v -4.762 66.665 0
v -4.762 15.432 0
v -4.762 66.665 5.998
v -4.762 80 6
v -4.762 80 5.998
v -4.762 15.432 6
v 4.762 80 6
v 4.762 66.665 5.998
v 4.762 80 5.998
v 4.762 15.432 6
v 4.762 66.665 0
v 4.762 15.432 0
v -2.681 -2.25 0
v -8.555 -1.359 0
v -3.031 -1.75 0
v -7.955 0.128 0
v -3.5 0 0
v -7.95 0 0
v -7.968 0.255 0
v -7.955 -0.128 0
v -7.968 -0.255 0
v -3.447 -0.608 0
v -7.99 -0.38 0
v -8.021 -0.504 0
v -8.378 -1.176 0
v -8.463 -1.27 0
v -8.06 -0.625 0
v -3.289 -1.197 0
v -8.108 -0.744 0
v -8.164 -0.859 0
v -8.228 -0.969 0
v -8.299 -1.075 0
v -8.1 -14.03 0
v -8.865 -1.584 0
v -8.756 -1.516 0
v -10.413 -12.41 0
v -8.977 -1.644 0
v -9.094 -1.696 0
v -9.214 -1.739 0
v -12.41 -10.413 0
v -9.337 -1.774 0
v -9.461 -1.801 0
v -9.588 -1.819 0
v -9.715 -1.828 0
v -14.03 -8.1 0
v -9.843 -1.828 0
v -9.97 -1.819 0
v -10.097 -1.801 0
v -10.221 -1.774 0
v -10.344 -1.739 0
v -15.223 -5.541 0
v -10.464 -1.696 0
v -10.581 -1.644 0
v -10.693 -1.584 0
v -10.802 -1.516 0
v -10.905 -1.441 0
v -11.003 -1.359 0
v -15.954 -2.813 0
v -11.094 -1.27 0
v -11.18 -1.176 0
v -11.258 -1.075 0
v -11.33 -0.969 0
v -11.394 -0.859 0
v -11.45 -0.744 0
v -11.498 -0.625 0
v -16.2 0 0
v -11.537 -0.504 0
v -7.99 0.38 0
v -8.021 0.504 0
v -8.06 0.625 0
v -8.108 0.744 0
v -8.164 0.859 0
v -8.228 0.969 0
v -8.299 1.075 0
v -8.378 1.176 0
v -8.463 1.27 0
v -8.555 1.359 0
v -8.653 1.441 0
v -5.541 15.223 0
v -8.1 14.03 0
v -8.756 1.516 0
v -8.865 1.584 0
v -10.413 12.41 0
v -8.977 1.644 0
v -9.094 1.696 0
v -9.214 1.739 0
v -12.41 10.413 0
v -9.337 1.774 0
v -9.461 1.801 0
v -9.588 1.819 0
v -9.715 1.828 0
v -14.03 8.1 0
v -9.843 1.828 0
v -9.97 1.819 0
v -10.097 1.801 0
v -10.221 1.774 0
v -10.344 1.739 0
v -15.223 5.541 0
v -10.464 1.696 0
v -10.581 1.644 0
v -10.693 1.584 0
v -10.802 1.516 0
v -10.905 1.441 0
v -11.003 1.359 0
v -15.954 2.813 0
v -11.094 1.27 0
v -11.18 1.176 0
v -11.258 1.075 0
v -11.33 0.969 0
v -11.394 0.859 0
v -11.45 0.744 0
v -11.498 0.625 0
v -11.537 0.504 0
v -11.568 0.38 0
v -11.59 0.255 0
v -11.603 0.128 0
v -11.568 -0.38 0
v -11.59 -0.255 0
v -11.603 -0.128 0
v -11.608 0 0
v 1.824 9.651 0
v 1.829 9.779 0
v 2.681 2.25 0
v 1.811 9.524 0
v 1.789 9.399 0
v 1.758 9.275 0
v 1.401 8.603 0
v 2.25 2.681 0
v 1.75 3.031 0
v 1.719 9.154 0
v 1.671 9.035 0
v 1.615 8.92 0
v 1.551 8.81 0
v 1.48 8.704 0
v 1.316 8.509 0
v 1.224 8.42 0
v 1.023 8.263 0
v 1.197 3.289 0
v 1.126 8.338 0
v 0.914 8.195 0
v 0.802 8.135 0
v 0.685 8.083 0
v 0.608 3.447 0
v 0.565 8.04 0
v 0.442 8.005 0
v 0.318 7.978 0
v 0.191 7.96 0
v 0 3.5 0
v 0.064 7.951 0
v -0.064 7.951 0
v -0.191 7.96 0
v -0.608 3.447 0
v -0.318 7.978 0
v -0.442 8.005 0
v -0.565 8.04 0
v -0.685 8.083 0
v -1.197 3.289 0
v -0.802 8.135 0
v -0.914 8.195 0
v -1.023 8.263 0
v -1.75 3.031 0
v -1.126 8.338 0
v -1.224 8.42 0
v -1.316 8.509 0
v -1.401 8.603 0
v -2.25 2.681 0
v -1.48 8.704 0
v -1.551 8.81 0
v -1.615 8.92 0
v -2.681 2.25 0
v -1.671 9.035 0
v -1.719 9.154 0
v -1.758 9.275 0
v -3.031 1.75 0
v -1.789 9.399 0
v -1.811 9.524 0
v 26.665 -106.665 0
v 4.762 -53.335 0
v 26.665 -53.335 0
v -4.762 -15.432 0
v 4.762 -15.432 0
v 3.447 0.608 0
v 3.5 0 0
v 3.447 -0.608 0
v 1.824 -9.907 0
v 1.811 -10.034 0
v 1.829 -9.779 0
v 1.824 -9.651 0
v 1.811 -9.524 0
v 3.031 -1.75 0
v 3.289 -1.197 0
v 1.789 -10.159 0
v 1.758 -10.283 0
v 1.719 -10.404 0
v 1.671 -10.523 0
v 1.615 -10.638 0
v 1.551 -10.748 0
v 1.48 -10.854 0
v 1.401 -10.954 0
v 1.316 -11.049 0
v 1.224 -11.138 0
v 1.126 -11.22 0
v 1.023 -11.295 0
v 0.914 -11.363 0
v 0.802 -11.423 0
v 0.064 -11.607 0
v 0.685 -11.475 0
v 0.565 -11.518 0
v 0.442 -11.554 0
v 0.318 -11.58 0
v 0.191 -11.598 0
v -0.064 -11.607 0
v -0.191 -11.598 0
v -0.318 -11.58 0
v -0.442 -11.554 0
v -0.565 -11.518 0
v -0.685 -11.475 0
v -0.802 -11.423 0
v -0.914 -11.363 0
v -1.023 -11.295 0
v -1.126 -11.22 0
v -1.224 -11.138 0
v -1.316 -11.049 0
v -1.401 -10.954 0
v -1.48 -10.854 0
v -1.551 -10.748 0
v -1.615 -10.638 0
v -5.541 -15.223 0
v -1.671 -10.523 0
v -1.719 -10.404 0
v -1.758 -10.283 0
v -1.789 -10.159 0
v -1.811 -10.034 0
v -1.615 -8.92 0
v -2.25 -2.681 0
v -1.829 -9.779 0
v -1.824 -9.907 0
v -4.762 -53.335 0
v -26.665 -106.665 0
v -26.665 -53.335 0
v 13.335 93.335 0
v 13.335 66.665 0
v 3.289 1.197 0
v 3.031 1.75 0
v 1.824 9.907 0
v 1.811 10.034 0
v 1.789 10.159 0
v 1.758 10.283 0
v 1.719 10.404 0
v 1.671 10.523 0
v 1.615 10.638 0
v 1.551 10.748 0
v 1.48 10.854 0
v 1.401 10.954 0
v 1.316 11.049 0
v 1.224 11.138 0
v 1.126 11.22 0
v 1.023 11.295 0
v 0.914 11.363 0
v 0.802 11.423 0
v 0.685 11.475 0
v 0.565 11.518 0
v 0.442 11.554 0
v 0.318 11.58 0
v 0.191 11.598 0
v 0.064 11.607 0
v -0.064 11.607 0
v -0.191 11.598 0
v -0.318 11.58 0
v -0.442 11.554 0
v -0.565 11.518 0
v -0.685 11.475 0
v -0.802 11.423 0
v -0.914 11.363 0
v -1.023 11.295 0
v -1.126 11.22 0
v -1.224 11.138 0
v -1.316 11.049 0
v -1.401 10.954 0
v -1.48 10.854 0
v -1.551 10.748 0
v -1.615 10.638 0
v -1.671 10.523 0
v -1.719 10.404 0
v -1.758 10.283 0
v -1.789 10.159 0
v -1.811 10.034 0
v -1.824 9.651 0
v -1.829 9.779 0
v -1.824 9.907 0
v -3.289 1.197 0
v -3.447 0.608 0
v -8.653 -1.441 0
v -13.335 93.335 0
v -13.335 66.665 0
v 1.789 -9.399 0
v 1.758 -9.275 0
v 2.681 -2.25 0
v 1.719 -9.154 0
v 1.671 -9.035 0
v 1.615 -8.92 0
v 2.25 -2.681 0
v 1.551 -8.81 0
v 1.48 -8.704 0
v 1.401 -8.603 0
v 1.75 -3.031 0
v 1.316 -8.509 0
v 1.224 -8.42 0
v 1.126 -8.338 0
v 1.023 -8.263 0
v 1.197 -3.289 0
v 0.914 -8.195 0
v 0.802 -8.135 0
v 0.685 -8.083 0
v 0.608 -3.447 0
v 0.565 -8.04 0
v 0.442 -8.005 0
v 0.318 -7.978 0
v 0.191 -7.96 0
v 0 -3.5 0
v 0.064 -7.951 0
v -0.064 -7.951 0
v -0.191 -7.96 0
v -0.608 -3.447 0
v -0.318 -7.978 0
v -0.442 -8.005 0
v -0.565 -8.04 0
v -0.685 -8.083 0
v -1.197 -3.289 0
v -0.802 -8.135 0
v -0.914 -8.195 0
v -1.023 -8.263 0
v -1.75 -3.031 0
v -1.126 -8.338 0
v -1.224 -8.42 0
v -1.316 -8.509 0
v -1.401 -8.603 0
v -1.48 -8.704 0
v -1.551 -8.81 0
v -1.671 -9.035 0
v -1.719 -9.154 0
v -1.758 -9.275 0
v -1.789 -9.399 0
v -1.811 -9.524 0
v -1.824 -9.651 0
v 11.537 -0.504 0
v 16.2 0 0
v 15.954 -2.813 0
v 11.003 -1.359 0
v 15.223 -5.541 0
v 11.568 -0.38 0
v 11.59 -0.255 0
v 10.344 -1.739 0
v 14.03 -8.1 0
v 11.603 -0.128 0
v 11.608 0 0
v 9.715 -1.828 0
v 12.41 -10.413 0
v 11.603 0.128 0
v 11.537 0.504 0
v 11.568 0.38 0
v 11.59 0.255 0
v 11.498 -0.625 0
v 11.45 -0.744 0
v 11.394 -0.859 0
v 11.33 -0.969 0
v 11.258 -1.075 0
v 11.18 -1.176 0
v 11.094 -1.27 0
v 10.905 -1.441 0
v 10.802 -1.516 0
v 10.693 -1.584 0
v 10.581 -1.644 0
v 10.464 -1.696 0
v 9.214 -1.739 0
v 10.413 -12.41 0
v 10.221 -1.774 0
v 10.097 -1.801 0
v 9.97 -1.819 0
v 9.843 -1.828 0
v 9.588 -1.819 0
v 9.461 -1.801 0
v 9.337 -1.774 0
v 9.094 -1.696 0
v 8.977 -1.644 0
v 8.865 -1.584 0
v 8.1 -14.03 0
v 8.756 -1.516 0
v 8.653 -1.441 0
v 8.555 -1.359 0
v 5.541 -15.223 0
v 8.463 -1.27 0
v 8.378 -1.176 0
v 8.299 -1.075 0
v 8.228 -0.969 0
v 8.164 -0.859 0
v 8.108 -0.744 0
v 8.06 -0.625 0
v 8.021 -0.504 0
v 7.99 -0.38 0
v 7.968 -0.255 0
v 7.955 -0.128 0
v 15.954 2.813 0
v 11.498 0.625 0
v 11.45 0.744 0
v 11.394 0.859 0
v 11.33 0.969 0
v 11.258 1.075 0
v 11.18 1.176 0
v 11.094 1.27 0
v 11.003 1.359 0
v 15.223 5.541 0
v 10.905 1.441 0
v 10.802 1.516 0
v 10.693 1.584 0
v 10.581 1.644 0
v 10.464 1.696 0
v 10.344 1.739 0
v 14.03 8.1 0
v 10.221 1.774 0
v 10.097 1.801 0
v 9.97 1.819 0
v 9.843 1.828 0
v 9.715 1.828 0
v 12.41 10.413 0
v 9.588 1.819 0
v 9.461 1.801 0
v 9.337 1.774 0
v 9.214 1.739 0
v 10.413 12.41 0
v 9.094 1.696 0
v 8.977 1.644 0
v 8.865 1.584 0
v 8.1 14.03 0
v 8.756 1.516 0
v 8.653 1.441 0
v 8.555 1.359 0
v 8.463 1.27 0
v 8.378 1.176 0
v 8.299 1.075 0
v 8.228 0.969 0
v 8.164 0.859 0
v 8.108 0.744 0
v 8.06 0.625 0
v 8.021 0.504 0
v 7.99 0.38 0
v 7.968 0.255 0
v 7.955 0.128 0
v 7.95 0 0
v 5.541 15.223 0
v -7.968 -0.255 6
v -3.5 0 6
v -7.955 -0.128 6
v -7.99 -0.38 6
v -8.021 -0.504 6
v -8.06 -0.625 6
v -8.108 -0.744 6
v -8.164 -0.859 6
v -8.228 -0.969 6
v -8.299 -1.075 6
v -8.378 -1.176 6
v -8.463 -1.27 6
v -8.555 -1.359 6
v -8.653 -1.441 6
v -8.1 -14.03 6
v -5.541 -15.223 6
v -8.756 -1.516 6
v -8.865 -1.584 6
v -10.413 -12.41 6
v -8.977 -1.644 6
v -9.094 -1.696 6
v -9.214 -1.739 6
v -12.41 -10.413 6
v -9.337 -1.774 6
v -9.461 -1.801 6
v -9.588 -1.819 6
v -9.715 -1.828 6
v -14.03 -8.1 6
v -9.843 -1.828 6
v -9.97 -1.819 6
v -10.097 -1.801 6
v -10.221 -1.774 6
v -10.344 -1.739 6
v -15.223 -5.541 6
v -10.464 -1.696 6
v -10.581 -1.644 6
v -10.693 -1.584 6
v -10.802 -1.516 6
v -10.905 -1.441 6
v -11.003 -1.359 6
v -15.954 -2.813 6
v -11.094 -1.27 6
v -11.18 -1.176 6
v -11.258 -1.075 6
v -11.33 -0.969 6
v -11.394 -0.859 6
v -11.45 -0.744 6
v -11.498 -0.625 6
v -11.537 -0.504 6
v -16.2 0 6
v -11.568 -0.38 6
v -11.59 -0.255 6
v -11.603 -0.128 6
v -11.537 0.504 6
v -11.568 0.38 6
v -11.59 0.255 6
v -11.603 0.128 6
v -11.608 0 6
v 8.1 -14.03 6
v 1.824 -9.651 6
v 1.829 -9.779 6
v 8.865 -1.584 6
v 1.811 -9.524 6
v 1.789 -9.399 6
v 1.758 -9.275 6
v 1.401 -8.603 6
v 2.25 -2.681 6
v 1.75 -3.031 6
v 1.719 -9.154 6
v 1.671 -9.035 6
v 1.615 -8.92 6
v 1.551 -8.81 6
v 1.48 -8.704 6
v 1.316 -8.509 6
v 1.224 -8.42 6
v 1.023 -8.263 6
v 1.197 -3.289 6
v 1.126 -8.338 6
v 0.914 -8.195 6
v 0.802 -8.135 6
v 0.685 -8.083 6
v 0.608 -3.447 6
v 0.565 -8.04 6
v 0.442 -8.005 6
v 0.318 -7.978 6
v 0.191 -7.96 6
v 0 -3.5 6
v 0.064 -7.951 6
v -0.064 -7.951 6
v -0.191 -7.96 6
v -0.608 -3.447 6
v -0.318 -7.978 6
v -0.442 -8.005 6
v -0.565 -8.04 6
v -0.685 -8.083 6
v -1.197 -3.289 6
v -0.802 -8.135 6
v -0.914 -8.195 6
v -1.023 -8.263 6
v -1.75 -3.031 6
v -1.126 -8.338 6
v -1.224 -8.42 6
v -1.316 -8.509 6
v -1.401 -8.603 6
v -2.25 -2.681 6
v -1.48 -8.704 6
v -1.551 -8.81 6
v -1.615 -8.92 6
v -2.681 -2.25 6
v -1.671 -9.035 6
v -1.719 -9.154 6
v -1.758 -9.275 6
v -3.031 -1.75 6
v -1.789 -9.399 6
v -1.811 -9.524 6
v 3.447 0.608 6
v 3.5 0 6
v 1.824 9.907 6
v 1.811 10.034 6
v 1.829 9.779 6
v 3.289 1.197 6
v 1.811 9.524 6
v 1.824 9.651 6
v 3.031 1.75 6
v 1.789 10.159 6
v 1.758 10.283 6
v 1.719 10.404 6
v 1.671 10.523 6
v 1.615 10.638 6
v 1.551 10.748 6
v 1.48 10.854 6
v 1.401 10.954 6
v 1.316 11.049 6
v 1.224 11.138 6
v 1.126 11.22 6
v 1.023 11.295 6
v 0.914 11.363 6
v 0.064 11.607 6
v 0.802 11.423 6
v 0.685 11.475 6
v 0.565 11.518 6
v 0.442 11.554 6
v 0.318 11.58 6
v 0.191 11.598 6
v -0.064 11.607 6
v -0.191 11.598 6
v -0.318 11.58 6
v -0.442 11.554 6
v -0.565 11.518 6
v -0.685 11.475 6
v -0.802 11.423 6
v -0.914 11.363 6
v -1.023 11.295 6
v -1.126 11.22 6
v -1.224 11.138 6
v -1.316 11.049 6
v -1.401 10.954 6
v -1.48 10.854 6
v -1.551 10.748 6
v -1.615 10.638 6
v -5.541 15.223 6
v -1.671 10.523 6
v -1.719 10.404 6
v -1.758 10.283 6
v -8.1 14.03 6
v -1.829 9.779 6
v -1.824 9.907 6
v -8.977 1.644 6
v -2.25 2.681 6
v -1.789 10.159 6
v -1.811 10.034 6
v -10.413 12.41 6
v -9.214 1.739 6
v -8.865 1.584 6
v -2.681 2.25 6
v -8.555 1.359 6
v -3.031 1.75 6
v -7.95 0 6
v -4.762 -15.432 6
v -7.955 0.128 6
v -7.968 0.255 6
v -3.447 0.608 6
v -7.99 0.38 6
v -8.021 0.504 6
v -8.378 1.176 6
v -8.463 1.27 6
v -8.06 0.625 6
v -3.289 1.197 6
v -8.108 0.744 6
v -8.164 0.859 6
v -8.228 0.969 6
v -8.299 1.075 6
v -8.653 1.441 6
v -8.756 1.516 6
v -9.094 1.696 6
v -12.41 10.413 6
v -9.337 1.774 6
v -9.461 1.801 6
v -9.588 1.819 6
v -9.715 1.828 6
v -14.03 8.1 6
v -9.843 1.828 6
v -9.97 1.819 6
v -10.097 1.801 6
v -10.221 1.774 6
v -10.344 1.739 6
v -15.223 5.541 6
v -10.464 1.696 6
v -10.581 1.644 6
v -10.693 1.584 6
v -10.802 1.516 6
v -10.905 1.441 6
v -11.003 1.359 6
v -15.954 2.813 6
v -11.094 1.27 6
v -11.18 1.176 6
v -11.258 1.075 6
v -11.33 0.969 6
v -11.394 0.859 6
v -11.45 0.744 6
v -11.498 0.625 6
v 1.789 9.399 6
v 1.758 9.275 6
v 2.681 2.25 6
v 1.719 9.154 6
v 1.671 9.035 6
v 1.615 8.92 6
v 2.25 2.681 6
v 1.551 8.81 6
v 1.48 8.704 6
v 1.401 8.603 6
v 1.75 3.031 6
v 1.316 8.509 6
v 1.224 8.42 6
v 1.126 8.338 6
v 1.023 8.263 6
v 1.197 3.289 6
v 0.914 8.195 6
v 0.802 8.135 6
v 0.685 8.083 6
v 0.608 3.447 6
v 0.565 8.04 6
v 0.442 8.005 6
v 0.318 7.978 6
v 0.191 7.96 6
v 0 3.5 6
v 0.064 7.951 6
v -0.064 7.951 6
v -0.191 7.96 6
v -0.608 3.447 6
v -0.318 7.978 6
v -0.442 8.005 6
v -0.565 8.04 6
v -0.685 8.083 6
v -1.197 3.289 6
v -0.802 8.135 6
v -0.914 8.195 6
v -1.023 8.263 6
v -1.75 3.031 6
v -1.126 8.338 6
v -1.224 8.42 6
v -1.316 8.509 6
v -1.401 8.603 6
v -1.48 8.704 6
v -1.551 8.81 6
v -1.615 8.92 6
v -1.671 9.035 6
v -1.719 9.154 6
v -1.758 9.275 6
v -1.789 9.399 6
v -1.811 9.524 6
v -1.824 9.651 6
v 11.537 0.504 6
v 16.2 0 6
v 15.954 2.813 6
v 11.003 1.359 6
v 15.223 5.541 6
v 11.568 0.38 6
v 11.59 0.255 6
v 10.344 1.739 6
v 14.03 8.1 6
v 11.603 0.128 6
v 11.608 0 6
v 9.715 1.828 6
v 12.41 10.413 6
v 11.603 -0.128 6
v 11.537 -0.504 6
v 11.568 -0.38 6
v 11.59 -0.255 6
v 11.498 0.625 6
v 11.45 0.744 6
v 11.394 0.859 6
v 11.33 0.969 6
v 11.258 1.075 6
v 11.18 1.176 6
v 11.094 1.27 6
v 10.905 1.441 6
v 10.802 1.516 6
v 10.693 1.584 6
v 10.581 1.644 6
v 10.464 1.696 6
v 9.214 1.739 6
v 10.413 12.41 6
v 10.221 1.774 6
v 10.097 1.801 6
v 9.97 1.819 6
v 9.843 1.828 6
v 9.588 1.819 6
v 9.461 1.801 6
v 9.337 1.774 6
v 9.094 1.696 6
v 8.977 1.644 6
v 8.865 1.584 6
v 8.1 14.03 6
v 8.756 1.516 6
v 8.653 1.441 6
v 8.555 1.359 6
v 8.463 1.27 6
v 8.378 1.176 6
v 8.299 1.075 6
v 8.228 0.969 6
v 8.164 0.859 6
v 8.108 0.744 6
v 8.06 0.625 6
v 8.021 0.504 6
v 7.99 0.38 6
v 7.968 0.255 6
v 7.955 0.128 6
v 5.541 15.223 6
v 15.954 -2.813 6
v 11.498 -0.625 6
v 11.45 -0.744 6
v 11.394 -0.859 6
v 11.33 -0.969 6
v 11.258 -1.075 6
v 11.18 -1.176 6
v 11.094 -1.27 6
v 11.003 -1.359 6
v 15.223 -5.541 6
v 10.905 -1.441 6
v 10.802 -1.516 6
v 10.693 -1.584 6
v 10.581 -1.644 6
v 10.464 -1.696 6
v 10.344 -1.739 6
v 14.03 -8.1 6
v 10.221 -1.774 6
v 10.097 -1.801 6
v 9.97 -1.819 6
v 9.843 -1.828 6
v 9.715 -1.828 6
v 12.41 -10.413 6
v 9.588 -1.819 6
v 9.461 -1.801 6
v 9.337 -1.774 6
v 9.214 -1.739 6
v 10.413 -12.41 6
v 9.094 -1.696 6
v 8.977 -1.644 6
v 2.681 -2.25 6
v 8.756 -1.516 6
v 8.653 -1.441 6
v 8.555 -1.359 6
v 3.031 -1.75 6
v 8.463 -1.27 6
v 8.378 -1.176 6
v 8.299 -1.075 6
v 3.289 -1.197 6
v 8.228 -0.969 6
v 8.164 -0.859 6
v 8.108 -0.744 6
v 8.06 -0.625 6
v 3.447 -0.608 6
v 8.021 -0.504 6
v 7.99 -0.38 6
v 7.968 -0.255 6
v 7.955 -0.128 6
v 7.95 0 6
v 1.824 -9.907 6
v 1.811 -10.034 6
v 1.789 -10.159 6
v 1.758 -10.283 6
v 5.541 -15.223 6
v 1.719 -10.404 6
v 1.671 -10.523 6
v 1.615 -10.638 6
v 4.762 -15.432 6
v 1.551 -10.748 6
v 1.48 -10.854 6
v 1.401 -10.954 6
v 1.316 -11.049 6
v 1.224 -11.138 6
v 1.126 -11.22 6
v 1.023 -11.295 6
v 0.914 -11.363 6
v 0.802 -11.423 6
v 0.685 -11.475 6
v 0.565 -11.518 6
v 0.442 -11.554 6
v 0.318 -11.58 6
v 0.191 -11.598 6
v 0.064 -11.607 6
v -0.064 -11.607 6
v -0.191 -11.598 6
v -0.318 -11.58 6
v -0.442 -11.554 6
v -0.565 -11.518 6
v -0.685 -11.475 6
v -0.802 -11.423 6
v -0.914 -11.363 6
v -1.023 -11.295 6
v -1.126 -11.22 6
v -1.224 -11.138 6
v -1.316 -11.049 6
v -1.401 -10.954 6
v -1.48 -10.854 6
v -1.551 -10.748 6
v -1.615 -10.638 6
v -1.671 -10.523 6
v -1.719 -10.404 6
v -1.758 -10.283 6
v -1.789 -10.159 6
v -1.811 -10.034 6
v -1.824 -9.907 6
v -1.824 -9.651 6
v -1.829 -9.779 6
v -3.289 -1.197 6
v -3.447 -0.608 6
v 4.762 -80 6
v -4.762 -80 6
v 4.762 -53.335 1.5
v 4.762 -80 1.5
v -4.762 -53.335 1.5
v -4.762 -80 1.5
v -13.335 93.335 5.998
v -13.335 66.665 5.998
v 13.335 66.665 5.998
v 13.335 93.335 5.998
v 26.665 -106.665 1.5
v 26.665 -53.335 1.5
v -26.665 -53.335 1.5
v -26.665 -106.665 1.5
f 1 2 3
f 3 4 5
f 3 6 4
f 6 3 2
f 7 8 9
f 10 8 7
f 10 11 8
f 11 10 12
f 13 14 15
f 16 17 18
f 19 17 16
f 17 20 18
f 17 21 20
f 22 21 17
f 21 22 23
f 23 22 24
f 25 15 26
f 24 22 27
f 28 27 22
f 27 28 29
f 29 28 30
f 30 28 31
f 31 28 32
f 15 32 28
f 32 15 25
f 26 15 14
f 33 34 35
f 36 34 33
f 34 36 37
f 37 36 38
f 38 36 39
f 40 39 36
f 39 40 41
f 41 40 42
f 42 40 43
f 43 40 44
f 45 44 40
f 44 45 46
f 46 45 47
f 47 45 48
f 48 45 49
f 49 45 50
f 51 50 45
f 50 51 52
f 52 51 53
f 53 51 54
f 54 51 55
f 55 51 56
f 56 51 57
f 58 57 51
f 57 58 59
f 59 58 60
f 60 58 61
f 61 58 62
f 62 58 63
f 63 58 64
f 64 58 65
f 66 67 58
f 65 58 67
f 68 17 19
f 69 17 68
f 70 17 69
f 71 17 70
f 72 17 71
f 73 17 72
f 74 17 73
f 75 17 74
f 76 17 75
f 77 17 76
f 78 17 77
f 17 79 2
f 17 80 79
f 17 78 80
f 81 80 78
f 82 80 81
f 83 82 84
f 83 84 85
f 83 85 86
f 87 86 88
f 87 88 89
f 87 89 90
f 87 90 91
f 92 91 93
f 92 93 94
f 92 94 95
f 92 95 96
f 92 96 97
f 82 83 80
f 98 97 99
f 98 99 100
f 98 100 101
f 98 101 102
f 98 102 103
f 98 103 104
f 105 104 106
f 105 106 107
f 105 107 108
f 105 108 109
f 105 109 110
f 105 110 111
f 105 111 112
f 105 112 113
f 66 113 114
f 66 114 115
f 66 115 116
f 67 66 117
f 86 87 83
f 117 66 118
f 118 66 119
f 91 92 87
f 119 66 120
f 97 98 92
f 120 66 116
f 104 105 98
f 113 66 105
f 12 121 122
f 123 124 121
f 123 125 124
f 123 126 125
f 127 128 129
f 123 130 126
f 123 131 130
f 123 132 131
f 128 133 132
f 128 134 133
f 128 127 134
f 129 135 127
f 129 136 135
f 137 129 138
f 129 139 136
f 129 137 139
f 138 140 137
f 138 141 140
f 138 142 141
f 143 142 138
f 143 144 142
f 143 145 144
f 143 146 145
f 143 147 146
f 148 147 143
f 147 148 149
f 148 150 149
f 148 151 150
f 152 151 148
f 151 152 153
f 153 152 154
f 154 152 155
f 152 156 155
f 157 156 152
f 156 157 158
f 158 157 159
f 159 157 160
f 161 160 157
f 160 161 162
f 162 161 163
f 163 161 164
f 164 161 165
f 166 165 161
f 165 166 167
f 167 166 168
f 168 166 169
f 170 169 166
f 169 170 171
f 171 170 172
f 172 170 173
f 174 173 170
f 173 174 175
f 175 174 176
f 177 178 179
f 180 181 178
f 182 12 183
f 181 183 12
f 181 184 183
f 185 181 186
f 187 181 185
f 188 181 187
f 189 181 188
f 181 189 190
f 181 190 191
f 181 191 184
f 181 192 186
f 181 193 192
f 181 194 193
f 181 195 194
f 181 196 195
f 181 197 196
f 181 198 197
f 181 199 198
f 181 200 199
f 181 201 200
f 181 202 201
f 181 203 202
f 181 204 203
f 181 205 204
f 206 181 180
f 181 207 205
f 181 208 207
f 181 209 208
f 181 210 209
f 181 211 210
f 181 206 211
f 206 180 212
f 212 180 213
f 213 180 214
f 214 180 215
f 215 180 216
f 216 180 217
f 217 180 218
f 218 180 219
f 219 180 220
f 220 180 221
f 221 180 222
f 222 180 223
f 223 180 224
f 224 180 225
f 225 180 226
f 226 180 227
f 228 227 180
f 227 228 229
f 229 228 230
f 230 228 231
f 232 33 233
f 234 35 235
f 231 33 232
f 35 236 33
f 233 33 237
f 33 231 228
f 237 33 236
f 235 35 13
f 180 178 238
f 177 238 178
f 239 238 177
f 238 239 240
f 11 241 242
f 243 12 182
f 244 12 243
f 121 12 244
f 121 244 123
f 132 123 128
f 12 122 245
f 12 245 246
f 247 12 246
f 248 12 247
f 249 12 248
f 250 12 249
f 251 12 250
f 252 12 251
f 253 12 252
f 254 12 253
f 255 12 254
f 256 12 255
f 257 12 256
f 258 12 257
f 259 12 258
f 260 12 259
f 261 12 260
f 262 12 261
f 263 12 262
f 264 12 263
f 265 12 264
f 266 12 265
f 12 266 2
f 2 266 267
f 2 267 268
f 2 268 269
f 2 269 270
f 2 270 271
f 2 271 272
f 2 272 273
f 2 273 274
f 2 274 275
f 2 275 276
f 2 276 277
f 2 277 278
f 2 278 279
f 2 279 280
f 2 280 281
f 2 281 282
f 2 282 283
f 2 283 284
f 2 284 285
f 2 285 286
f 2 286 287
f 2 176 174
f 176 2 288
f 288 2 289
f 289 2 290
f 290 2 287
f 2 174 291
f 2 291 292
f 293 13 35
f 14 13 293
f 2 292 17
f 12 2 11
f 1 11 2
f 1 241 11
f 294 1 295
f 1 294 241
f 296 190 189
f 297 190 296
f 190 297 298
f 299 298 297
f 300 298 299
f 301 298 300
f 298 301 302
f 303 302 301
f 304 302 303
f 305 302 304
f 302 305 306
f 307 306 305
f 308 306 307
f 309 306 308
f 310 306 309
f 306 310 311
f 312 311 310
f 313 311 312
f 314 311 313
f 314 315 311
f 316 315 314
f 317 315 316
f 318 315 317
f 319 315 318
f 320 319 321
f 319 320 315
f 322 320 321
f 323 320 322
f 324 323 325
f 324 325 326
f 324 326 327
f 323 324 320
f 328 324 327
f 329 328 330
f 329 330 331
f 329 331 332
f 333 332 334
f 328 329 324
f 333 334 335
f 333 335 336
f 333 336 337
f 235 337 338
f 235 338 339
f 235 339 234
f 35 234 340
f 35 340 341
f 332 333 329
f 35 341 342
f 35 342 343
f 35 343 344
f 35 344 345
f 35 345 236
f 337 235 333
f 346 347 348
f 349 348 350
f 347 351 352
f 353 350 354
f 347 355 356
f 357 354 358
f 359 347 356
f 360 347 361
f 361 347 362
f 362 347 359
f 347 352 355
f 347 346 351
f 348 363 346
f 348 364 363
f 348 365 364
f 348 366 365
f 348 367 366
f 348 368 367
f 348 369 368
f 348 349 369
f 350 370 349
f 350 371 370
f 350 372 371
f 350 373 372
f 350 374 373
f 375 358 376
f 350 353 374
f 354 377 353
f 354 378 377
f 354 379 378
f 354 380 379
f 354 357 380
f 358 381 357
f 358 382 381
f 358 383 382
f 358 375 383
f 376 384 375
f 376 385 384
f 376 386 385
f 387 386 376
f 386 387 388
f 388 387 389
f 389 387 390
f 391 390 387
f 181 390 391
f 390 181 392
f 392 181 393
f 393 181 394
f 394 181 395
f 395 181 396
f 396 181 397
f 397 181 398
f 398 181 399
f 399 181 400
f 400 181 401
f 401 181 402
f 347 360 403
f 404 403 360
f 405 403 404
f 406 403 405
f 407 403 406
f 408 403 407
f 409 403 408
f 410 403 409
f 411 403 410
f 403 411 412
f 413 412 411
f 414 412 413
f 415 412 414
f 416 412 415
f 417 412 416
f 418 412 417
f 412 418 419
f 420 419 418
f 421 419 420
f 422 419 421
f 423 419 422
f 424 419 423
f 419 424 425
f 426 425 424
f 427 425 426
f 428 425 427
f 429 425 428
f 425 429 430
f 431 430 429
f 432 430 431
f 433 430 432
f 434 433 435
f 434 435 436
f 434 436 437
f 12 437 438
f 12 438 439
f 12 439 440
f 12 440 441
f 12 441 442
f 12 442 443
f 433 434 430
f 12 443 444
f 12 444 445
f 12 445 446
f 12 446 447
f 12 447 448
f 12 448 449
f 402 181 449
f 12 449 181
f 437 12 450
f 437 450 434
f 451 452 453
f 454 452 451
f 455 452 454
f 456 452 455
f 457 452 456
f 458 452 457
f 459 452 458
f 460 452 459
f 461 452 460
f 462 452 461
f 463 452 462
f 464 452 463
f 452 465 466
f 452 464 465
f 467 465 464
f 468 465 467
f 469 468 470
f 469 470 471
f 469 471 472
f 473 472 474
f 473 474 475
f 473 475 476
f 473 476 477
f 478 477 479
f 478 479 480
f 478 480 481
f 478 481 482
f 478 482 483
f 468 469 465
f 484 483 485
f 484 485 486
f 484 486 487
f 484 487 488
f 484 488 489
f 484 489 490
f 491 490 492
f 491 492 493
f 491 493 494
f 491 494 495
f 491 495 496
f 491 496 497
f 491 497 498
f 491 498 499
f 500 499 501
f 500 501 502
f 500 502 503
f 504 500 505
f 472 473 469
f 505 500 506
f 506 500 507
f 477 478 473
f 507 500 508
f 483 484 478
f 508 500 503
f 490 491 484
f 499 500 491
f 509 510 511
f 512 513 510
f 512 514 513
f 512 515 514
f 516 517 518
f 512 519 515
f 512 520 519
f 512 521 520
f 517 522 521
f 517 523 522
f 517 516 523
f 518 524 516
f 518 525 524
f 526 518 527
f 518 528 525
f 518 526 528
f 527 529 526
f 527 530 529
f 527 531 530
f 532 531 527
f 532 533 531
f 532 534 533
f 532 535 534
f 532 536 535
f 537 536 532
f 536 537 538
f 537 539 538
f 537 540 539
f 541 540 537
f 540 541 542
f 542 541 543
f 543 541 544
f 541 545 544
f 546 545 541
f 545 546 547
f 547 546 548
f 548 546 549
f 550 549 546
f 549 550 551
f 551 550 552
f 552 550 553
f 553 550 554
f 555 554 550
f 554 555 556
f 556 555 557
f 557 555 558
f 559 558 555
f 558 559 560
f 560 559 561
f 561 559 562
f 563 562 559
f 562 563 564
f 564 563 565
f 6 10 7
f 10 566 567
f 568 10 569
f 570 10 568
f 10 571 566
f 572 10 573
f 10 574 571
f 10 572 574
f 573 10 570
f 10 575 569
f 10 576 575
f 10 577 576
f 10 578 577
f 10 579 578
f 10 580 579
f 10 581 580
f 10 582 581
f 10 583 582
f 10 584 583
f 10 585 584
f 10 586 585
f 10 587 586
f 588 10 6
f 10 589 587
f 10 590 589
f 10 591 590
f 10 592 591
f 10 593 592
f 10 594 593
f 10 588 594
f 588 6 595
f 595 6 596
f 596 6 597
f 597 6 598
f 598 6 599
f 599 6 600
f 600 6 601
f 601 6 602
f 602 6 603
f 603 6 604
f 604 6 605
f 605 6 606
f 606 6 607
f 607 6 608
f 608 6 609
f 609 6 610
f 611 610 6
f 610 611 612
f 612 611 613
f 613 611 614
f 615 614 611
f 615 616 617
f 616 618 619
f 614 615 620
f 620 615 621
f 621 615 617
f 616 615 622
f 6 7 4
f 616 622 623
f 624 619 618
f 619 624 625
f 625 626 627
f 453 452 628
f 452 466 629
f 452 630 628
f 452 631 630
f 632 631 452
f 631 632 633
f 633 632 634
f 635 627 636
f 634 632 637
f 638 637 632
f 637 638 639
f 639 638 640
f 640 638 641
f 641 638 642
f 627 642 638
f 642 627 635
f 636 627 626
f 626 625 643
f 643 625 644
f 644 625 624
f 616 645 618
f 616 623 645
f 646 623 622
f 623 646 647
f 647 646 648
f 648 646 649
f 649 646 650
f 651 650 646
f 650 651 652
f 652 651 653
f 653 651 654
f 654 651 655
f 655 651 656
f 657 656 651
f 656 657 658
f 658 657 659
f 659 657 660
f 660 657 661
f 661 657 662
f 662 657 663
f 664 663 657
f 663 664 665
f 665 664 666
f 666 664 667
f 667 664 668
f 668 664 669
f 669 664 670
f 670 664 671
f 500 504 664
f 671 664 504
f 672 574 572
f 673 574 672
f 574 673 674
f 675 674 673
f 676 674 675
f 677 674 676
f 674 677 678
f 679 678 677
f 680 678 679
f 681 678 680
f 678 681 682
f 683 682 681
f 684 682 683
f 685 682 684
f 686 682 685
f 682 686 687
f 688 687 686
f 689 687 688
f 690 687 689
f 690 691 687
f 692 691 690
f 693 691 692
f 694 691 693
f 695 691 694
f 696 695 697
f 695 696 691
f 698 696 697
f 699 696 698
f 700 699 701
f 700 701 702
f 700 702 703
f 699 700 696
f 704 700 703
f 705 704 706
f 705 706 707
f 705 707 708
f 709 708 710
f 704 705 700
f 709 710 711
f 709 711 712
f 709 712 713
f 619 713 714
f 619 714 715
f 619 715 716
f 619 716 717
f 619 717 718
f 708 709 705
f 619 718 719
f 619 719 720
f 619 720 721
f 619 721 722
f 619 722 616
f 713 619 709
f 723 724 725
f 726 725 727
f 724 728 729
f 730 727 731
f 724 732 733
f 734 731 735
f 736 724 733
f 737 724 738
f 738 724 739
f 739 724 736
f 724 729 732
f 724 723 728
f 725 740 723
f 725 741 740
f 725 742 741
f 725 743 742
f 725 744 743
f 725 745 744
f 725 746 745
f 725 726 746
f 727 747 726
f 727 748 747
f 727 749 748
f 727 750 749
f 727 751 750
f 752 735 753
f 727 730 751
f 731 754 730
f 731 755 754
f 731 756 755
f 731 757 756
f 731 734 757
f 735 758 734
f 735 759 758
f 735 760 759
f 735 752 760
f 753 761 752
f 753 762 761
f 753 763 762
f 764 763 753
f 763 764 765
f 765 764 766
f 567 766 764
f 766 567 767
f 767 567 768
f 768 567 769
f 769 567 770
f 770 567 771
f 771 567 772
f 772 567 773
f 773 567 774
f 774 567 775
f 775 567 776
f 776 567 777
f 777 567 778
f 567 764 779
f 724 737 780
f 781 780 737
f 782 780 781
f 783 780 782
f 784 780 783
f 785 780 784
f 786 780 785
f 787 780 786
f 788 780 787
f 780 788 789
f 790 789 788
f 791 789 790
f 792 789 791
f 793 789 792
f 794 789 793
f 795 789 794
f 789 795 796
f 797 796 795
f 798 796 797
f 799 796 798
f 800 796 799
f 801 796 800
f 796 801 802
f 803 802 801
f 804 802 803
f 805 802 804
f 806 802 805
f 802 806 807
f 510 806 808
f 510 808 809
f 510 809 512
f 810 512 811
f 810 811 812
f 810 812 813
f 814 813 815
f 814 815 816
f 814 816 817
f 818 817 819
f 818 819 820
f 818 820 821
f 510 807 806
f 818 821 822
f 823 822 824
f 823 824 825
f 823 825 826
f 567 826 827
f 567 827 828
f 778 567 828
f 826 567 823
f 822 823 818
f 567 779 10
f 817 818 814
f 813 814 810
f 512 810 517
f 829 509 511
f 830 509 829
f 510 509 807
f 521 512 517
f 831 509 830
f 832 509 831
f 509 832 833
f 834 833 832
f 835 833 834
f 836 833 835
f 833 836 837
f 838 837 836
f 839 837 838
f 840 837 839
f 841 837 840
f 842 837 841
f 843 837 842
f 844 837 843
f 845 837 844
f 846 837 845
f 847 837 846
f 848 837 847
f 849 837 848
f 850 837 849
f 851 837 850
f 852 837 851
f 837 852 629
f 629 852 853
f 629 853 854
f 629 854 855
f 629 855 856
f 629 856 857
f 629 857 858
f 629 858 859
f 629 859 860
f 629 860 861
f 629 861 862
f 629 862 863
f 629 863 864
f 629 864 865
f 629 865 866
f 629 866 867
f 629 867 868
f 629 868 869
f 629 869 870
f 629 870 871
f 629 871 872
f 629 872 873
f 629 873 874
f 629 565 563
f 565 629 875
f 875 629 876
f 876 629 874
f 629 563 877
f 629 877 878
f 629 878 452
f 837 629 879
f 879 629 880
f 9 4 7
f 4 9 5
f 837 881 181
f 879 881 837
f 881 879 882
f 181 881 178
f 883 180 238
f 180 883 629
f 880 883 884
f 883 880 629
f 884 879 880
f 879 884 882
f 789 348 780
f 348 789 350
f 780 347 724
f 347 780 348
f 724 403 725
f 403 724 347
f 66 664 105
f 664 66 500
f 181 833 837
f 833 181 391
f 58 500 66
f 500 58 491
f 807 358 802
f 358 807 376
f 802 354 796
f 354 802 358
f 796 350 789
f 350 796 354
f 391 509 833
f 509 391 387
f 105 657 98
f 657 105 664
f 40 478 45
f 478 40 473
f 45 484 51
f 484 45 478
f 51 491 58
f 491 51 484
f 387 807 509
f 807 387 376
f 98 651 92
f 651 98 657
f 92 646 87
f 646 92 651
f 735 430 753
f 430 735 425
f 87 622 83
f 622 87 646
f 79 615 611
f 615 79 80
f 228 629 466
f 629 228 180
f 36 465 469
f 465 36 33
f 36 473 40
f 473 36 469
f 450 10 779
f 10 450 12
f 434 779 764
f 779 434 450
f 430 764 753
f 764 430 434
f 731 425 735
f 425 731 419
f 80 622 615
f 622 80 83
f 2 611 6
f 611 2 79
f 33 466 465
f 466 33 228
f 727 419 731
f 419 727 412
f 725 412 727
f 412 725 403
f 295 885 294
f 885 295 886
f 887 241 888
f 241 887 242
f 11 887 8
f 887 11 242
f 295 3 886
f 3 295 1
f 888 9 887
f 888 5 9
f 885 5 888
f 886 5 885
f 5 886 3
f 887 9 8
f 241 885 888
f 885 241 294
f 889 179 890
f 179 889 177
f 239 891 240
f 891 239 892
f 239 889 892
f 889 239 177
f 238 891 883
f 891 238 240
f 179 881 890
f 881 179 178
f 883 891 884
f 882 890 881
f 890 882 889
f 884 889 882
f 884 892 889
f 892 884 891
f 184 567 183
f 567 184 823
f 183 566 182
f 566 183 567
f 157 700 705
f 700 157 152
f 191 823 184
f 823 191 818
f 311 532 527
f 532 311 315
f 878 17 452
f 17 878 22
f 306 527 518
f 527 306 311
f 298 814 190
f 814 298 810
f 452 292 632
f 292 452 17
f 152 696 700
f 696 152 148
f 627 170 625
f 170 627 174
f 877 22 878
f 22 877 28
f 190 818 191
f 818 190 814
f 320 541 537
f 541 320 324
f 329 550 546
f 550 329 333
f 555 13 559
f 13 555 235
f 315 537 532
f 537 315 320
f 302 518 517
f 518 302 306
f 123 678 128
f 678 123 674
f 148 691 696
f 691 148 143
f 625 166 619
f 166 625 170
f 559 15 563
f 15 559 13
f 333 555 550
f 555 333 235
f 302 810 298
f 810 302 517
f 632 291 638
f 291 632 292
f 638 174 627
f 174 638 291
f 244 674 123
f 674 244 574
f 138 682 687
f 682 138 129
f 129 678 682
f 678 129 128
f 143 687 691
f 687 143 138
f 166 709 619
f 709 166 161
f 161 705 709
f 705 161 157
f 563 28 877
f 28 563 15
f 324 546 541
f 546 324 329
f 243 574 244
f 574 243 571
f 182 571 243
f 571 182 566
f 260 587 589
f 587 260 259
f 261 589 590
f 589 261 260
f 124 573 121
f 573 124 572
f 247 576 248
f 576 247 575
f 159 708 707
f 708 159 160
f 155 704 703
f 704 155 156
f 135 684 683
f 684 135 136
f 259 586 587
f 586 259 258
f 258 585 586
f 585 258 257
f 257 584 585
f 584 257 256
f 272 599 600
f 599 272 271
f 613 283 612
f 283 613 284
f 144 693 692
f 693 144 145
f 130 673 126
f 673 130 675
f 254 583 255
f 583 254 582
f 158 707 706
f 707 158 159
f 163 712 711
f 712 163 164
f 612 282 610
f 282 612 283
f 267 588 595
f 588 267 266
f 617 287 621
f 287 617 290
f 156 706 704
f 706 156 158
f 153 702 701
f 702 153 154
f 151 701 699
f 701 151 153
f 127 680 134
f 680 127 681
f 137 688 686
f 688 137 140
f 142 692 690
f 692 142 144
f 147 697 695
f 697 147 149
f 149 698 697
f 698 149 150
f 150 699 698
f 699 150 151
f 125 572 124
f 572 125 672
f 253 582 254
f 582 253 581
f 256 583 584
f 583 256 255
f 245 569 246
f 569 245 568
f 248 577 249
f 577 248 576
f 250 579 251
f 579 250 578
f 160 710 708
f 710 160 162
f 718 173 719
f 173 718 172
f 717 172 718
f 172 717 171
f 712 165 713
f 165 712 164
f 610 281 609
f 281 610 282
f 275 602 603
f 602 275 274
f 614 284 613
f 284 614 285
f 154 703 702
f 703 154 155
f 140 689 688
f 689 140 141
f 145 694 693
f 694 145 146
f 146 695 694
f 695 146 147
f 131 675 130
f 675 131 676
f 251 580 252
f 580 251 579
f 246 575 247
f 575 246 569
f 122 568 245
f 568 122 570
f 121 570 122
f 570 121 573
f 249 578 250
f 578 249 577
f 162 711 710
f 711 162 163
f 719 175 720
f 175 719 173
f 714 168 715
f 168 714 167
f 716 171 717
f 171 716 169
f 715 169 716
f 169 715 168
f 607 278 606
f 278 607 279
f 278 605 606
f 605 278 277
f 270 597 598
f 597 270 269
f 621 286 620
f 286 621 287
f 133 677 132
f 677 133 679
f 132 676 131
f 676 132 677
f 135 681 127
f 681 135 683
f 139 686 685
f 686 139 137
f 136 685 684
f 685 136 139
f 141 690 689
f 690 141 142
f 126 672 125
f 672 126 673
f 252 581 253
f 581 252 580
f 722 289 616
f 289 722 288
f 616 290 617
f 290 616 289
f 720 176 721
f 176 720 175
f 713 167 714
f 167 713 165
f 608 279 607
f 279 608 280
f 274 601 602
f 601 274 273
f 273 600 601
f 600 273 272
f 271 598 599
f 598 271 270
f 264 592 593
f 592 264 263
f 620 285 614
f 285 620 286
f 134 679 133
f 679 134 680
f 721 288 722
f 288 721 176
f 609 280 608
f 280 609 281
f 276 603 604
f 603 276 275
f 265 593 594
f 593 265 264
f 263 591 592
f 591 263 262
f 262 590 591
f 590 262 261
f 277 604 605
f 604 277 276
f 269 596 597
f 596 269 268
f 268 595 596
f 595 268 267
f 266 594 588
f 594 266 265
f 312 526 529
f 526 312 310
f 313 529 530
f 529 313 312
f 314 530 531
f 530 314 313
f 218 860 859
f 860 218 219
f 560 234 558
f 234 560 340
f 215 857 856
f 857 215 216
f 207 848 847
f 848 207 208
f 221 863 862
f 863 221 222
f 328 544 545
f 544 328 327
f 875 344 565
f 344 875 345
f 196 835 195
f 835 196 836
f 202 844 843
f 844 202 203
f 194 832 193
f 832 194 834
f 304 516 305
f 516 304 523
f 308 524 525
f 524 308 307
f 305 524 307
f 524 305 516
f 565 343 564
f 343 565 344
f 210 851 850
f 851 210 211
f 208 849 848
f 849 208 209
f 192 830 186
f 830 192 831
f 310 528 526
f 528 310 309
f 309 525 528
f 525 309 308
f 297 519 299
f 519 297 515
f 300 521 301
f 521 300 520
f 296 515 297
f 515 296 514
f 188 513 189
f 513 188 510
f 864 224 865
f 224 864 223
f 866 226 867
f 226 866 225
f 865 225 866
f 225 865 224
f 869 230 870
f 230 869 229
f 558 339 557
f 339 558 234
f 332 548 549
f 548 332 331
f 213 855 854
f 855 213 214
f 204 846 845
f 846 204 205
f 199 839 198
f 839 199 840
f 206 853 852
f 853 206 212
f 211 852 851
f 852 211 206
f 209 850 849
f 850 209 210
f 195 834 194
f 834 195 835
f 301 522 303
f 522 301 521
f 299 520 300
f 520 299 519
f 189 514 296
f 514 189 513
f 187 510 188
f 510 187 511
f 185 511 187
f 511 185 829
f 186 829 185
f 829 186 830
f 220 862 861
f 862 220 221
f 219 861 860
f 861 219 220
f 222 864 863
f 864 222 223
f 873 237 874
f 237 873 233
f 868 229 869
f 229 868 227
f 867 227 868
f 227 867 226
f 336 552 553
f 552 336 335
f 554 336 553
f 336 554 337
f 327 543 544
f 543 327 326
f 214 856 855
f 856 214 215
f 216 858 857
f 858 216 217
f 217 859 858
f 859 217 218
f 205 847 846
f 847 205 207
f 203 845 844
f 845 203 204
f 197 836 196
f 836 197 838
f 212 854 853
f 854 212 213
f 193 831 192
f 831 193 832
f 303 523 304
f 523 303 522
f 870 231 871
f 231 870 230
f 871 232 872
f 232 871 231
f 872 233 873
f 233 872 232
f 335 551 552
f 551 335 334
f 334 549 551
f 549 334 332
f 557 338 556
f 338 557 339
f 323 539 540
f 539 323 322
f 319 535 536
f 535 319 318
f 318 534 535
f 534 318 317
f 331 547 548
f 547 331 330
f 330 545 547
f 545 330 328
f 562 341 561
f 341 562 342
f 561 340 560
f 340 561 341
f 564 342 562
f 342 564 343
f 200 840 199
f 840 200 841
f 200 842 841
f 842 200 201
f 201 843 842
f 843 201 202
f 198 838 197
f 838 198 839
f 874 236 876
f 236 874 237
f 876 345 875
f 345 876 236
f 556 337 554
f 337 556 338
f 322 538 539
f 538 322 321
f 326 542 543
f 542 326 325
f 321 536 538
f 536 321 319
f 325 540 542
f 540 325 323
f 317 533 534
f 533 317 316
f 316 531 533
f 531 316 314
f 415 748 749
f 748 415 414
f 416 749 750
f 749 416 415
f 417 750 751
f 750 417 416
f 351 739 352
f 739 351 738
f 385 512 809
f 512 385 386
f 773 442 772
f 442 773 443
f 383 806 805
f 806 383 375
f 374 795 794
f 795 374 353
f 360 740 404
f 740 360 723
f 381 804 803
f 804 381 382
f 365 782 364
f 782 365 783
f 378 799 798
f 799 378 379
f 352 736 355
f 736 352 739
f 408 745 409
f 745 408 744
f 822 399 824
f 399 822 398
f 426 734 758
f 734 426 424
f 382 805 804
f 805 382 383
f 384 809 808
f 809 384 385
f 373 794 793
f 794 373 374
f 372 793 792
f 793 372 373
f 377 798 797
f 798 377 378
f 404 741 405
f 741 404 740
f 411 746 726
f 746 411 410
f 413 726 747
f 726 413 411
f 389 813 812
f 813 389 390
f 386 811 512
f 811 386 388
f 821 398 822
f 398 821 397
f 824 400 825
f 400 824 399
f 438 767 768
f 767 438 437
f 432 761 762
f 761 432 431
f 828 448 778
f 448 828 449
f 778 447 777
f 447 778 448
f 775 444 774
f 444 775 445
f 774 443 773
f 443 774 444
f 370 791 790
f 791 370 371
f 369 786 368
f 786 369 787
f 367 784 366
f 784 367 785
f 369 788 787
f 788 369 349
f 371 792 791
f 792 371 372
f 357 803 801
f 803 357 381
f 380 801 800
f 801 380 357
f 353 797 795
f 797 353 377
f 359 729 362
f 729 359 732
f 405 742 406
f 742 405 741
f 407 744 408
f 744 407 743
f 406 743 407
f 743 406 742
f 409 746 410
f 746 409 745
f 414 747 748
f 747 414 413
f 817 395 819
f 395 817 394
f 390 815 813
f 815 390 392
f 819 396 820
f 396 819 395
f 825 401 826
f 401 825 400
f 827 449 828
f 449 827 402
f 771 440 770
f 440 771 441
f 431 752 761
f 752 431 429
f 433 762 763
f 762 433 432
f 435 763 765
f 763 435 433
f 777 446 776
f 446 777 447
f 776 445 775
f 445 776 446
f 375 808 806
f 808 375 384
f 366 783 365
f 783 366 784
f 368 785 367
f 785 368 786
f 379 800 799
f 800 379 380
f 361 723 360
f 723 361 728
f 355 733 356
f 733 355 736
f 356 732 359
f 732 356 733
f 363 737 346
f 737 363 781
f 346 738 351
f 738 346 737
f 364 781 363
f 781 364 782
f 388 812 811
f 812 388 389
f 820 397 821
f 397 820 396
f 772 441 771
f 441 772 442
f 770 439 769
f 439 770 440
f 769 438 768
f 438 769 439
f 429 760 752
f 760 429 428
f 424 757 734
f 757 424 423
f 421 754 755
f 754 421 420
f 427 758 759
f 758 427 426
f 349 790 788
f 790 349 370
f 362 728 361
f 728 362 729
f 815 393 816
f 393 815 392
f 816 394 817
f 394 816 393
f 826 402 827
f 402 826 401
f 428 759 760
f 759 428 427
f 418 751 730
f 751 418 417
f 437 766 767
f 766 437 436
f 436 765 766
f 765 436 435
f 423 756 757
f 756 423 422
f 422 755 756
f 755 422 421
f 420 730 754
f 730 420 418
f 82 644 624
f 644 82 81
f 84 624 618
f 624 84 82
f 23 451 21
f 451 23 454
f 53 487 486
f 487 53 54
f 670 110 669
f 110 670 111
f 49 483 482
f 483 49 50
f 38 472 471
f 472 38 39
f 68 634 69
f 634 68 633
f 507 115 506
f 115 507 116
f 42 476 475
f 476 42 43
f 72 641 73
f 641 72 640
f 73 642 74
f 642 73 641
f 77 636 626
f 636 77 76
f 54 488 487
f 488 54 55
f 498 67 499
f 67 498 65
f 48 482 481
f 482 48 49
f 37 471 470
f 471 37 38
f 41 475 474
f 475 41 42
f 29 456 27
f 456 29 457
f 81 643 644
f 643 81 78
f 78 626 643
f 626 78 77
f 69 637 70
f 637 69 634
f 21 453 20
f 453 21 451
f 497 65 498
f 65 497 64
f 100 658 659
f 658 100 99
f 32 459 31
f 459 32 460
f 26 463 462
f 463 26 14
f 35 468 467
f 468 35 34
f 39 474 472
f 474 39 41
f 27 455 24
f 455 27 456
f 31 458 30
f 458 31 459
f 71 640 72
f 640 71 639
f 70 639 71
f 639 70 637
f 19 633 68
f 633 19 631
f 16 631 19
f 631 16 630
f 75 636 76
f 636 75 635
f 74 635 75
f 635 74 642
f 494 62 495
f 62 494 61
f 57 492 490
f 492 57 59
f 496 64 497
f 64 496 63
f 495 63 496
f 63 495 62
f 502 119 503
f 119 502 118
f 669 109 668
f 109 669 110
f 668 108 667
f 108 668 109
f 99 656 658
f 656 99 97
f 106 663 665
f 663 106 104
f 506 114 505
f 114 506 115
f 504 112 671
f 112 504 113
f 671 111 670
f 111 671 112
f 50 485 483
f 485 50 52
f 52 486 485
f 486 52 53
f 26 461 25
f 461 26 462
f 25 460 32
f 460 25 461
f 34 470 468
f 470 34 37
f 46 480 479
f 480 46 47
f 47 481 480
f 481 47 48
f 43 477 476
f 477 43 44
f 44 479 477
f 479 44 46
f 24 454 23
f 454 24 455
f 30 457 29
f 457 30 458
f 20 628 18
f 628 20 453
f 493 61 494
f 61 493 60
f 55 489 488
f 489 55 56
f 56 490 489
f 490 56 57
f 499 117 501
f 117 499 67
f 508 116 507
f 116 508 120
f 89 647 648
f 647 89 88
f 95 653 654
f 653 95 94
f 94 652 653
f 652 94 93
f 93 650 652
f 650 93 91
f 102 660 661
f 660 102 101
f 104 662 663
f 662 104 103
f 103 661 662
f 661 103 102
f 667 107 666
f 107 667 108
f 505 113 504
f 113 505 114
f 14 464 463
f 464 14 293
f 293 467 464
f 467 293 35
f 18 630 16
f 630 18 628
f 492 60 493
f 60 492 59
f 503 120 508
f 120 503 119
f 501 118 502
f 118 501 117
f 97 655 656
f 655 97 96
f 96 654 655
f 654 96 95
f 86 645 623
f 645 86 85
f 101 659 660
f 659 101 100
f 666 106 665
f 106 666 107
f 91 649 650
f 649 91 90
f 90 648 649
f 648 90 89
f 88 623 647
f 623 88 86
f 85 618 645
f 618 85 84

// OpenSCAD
/// @file dynaTestWheelV05
///
/// @brief Wheel/pulley for dynamic testing setup
///
/// Designed to fit this motor on Servo City:
/// 612 RPM HD Premium Planetary Gear Motor w/Encoder
/// https://www.servocity.com/612-rpm-hd-premium-planetary-gear-motor-w-encoder
///
/// Effective dia is 160 mm. Shaft dia 6 mm and shaft D is 5.5 mm high.
///
/// Created 30 Jun 2017
/// Modified 03 Jul 2017 (V02)
/// -reduce material (to 6mm)
/// Modified 03 Jul 2017 (V03)
/// -0.770 hub mount holes
/// Modified 06 Jul 2017 (V04)
/// -larger mount/shaft holes
/// Modified 24 Jul 2017 (V05)
/// -simplified to dual marker mount
///
/// @author Mustafa Ghazi

// wheel disk
innerDiskDia = 160; // [mm]
innerDiskThickness = 10.75; // [mm]
outerDiskDia = innerDiskDia + 4; // [mm]
outerDiskThickness = 1.5; // [mm]
shaftDDia = 6+1; // [mm]
shaftDHeight = 5.5; // [mm] 
largeFN = 90;

// hollow out and spokes
hollowInnerDia = shaftDDia + 25.4; // [mm]
hollowOuterDia = innerDiskDia - 25.4/2.0; // [mm]
spokeWidth = 3/8*25.4; // [mm]
spokeHeight = innerDiskDia/2.0; // [mm]
numSpokes = 12; 

// remove extra material
desiredHubThickness = 6; // [mm]
cavityDia = innerDiskDia - 25.4/4.0; // [mm] 

// hub mount holes
hubHoleDia = 0.1440*25.4; // [mm]
hubHolePatternDia = 0.770*25.4; // [mm]

// marker mounts
// volume of both mounts should be the same for balance
markerLenB = 53.33; // [mm]
mountThicknessB = 1.5; // [mm]
markerLenA = 26.67; // [mm]
mountThicknessA = markerLenB*markerLenB*mountThicknessB/markerLenA/markerLenA; // [mm]


// hub, arm and marker mounts with mounting holes
difference() {

	// hub, arm, and marker mounts (without holes)
	union() {

		//  0 deg arm
		rotate([0, 0, 0]) {
			translate([ -spokeWidth/2, 0, 0]) { 
				linear_extrude(height = desiredHubThickness, center = false, convexity = 10, twist = 0, slices = 20, scale = 1.0) { polygon(points = [[0,0],[spokeWidth,0],[spokeWidth,spokeHeight],[0,spokeHeight]], paths = undef, convexity = 1); }
			}
		}
		
		//  180 deg arm
		rotate([0, 0, 180]) {
			translate([ -spokeWidth/2, 0, 0]) { 
				linear_extrude(height = desiredHubThickness, center = false, convexity = 10, twist = 0, slices = 20, scale = 1.0) { polygon(points = [[0,0],[spokeWidth,0],[spokeWidth,spokeHeight],[0,spokeHeight]], paths = undef, convexity = 1); }
			}
		}
		
		// hub
		translate([0, 0, 0]) {
			rotate([0, 0,  0]) { 
				linear_extrude(height = desiredHubThickness, center = false, convexity = 10, twist = 0, slices = 20, scale = 1.0) { circle(d=hollowInnerDia,$fn=36); }
			}
		}
		
		// marker at 0 deg
		rotate([0, 0, 0]) {
			translate([ -markerLenA/2, spokeHeight-markerLenA/2, 0]) { 
				linear_extrude(height = mountThicknessA, center = false, convexity = 10, twist = 0, slices = 20, scale = 1.0) { polygon(points = [[0,0],[markerLenA,0],[markerLenA,markerLenA],[0,markerLenA]], paths = undef, convexity = 1); }
			}
		}
		
		// marker at 180 deg
		rotate([0, 0, 180]) {
			translate([ -markerLenB/2, spokeHeight-markerLenB/2, 0]) { 
				linear_extrude(height = mountThicknessB, center = false, convexity = 10, twist = 0, slices = 20, scale = 1.0) { polygon(points = [[0,0],[markerLenB,0],[markerLenB,markerLenB],[0,markerLenB]], paths = undef, convexity = 1); }
			}
		}

	}
	
	// shaft hole
	translate([0, 0, 0]) {
		rotate([0, 0,  0]) { 
			linear_extrude(height = desiredHubThickness, center = false, convexity = 10, twist = 0, slices = 20, scale = 1.0) { circle(d=shaftDDia,$fn=36); }
		}
	}

	// 4 X hub mount holes
	translate([0, hubHolePatternDia/2.0, 0]) {
		rotate([0, 0,  0]) { 
			linear_extrude(height = innerDiskThickness + 2*outerDiskThickness, center = false, convexity = 10, twist = 0, slices = 20, scale = 1.0) { circle(d=hubHoleDia,$fn=largeFN); }
		}
	}
	
	translate([0, -hubHolePatternDia/2.0, 0]) {
		rotate([0, 0,  0]) { 
			linear_extrude(height = innerDiskThickness + 2*outerDiskThickness, center = false, convexity = 10, twist = 0, slices = 20, scale = 1.0) { circle(d=hubHoleDia,$fn=largeFN); }
		}
	}
	
	translate([hubHolePatternDia/2.0, 0, 0]) {
		rotate([0, 0,  0]) { 
			linear_extrude(height = innerDiskThickness + 2*outerDiskThickness, center = false, convexity = 10, twist = 0, slices = 20, scale = 1.0) { circle(d=hubHoleDia,$fn=largeFN); }
		}
	}
	
	translate([-hubHolePatternDia/2.0, 0, 0]) {
		rotate([0, 0,  0]) { 
			linear_extrude(height = innerDiskThickness + 2*outerDiskThickness, center = false, convexity = 10, twist = 0, slices = 20, scale = 1.0) { circle(d=hubHoleDia,$fn=largeFN); }
		}
	}
	

}
